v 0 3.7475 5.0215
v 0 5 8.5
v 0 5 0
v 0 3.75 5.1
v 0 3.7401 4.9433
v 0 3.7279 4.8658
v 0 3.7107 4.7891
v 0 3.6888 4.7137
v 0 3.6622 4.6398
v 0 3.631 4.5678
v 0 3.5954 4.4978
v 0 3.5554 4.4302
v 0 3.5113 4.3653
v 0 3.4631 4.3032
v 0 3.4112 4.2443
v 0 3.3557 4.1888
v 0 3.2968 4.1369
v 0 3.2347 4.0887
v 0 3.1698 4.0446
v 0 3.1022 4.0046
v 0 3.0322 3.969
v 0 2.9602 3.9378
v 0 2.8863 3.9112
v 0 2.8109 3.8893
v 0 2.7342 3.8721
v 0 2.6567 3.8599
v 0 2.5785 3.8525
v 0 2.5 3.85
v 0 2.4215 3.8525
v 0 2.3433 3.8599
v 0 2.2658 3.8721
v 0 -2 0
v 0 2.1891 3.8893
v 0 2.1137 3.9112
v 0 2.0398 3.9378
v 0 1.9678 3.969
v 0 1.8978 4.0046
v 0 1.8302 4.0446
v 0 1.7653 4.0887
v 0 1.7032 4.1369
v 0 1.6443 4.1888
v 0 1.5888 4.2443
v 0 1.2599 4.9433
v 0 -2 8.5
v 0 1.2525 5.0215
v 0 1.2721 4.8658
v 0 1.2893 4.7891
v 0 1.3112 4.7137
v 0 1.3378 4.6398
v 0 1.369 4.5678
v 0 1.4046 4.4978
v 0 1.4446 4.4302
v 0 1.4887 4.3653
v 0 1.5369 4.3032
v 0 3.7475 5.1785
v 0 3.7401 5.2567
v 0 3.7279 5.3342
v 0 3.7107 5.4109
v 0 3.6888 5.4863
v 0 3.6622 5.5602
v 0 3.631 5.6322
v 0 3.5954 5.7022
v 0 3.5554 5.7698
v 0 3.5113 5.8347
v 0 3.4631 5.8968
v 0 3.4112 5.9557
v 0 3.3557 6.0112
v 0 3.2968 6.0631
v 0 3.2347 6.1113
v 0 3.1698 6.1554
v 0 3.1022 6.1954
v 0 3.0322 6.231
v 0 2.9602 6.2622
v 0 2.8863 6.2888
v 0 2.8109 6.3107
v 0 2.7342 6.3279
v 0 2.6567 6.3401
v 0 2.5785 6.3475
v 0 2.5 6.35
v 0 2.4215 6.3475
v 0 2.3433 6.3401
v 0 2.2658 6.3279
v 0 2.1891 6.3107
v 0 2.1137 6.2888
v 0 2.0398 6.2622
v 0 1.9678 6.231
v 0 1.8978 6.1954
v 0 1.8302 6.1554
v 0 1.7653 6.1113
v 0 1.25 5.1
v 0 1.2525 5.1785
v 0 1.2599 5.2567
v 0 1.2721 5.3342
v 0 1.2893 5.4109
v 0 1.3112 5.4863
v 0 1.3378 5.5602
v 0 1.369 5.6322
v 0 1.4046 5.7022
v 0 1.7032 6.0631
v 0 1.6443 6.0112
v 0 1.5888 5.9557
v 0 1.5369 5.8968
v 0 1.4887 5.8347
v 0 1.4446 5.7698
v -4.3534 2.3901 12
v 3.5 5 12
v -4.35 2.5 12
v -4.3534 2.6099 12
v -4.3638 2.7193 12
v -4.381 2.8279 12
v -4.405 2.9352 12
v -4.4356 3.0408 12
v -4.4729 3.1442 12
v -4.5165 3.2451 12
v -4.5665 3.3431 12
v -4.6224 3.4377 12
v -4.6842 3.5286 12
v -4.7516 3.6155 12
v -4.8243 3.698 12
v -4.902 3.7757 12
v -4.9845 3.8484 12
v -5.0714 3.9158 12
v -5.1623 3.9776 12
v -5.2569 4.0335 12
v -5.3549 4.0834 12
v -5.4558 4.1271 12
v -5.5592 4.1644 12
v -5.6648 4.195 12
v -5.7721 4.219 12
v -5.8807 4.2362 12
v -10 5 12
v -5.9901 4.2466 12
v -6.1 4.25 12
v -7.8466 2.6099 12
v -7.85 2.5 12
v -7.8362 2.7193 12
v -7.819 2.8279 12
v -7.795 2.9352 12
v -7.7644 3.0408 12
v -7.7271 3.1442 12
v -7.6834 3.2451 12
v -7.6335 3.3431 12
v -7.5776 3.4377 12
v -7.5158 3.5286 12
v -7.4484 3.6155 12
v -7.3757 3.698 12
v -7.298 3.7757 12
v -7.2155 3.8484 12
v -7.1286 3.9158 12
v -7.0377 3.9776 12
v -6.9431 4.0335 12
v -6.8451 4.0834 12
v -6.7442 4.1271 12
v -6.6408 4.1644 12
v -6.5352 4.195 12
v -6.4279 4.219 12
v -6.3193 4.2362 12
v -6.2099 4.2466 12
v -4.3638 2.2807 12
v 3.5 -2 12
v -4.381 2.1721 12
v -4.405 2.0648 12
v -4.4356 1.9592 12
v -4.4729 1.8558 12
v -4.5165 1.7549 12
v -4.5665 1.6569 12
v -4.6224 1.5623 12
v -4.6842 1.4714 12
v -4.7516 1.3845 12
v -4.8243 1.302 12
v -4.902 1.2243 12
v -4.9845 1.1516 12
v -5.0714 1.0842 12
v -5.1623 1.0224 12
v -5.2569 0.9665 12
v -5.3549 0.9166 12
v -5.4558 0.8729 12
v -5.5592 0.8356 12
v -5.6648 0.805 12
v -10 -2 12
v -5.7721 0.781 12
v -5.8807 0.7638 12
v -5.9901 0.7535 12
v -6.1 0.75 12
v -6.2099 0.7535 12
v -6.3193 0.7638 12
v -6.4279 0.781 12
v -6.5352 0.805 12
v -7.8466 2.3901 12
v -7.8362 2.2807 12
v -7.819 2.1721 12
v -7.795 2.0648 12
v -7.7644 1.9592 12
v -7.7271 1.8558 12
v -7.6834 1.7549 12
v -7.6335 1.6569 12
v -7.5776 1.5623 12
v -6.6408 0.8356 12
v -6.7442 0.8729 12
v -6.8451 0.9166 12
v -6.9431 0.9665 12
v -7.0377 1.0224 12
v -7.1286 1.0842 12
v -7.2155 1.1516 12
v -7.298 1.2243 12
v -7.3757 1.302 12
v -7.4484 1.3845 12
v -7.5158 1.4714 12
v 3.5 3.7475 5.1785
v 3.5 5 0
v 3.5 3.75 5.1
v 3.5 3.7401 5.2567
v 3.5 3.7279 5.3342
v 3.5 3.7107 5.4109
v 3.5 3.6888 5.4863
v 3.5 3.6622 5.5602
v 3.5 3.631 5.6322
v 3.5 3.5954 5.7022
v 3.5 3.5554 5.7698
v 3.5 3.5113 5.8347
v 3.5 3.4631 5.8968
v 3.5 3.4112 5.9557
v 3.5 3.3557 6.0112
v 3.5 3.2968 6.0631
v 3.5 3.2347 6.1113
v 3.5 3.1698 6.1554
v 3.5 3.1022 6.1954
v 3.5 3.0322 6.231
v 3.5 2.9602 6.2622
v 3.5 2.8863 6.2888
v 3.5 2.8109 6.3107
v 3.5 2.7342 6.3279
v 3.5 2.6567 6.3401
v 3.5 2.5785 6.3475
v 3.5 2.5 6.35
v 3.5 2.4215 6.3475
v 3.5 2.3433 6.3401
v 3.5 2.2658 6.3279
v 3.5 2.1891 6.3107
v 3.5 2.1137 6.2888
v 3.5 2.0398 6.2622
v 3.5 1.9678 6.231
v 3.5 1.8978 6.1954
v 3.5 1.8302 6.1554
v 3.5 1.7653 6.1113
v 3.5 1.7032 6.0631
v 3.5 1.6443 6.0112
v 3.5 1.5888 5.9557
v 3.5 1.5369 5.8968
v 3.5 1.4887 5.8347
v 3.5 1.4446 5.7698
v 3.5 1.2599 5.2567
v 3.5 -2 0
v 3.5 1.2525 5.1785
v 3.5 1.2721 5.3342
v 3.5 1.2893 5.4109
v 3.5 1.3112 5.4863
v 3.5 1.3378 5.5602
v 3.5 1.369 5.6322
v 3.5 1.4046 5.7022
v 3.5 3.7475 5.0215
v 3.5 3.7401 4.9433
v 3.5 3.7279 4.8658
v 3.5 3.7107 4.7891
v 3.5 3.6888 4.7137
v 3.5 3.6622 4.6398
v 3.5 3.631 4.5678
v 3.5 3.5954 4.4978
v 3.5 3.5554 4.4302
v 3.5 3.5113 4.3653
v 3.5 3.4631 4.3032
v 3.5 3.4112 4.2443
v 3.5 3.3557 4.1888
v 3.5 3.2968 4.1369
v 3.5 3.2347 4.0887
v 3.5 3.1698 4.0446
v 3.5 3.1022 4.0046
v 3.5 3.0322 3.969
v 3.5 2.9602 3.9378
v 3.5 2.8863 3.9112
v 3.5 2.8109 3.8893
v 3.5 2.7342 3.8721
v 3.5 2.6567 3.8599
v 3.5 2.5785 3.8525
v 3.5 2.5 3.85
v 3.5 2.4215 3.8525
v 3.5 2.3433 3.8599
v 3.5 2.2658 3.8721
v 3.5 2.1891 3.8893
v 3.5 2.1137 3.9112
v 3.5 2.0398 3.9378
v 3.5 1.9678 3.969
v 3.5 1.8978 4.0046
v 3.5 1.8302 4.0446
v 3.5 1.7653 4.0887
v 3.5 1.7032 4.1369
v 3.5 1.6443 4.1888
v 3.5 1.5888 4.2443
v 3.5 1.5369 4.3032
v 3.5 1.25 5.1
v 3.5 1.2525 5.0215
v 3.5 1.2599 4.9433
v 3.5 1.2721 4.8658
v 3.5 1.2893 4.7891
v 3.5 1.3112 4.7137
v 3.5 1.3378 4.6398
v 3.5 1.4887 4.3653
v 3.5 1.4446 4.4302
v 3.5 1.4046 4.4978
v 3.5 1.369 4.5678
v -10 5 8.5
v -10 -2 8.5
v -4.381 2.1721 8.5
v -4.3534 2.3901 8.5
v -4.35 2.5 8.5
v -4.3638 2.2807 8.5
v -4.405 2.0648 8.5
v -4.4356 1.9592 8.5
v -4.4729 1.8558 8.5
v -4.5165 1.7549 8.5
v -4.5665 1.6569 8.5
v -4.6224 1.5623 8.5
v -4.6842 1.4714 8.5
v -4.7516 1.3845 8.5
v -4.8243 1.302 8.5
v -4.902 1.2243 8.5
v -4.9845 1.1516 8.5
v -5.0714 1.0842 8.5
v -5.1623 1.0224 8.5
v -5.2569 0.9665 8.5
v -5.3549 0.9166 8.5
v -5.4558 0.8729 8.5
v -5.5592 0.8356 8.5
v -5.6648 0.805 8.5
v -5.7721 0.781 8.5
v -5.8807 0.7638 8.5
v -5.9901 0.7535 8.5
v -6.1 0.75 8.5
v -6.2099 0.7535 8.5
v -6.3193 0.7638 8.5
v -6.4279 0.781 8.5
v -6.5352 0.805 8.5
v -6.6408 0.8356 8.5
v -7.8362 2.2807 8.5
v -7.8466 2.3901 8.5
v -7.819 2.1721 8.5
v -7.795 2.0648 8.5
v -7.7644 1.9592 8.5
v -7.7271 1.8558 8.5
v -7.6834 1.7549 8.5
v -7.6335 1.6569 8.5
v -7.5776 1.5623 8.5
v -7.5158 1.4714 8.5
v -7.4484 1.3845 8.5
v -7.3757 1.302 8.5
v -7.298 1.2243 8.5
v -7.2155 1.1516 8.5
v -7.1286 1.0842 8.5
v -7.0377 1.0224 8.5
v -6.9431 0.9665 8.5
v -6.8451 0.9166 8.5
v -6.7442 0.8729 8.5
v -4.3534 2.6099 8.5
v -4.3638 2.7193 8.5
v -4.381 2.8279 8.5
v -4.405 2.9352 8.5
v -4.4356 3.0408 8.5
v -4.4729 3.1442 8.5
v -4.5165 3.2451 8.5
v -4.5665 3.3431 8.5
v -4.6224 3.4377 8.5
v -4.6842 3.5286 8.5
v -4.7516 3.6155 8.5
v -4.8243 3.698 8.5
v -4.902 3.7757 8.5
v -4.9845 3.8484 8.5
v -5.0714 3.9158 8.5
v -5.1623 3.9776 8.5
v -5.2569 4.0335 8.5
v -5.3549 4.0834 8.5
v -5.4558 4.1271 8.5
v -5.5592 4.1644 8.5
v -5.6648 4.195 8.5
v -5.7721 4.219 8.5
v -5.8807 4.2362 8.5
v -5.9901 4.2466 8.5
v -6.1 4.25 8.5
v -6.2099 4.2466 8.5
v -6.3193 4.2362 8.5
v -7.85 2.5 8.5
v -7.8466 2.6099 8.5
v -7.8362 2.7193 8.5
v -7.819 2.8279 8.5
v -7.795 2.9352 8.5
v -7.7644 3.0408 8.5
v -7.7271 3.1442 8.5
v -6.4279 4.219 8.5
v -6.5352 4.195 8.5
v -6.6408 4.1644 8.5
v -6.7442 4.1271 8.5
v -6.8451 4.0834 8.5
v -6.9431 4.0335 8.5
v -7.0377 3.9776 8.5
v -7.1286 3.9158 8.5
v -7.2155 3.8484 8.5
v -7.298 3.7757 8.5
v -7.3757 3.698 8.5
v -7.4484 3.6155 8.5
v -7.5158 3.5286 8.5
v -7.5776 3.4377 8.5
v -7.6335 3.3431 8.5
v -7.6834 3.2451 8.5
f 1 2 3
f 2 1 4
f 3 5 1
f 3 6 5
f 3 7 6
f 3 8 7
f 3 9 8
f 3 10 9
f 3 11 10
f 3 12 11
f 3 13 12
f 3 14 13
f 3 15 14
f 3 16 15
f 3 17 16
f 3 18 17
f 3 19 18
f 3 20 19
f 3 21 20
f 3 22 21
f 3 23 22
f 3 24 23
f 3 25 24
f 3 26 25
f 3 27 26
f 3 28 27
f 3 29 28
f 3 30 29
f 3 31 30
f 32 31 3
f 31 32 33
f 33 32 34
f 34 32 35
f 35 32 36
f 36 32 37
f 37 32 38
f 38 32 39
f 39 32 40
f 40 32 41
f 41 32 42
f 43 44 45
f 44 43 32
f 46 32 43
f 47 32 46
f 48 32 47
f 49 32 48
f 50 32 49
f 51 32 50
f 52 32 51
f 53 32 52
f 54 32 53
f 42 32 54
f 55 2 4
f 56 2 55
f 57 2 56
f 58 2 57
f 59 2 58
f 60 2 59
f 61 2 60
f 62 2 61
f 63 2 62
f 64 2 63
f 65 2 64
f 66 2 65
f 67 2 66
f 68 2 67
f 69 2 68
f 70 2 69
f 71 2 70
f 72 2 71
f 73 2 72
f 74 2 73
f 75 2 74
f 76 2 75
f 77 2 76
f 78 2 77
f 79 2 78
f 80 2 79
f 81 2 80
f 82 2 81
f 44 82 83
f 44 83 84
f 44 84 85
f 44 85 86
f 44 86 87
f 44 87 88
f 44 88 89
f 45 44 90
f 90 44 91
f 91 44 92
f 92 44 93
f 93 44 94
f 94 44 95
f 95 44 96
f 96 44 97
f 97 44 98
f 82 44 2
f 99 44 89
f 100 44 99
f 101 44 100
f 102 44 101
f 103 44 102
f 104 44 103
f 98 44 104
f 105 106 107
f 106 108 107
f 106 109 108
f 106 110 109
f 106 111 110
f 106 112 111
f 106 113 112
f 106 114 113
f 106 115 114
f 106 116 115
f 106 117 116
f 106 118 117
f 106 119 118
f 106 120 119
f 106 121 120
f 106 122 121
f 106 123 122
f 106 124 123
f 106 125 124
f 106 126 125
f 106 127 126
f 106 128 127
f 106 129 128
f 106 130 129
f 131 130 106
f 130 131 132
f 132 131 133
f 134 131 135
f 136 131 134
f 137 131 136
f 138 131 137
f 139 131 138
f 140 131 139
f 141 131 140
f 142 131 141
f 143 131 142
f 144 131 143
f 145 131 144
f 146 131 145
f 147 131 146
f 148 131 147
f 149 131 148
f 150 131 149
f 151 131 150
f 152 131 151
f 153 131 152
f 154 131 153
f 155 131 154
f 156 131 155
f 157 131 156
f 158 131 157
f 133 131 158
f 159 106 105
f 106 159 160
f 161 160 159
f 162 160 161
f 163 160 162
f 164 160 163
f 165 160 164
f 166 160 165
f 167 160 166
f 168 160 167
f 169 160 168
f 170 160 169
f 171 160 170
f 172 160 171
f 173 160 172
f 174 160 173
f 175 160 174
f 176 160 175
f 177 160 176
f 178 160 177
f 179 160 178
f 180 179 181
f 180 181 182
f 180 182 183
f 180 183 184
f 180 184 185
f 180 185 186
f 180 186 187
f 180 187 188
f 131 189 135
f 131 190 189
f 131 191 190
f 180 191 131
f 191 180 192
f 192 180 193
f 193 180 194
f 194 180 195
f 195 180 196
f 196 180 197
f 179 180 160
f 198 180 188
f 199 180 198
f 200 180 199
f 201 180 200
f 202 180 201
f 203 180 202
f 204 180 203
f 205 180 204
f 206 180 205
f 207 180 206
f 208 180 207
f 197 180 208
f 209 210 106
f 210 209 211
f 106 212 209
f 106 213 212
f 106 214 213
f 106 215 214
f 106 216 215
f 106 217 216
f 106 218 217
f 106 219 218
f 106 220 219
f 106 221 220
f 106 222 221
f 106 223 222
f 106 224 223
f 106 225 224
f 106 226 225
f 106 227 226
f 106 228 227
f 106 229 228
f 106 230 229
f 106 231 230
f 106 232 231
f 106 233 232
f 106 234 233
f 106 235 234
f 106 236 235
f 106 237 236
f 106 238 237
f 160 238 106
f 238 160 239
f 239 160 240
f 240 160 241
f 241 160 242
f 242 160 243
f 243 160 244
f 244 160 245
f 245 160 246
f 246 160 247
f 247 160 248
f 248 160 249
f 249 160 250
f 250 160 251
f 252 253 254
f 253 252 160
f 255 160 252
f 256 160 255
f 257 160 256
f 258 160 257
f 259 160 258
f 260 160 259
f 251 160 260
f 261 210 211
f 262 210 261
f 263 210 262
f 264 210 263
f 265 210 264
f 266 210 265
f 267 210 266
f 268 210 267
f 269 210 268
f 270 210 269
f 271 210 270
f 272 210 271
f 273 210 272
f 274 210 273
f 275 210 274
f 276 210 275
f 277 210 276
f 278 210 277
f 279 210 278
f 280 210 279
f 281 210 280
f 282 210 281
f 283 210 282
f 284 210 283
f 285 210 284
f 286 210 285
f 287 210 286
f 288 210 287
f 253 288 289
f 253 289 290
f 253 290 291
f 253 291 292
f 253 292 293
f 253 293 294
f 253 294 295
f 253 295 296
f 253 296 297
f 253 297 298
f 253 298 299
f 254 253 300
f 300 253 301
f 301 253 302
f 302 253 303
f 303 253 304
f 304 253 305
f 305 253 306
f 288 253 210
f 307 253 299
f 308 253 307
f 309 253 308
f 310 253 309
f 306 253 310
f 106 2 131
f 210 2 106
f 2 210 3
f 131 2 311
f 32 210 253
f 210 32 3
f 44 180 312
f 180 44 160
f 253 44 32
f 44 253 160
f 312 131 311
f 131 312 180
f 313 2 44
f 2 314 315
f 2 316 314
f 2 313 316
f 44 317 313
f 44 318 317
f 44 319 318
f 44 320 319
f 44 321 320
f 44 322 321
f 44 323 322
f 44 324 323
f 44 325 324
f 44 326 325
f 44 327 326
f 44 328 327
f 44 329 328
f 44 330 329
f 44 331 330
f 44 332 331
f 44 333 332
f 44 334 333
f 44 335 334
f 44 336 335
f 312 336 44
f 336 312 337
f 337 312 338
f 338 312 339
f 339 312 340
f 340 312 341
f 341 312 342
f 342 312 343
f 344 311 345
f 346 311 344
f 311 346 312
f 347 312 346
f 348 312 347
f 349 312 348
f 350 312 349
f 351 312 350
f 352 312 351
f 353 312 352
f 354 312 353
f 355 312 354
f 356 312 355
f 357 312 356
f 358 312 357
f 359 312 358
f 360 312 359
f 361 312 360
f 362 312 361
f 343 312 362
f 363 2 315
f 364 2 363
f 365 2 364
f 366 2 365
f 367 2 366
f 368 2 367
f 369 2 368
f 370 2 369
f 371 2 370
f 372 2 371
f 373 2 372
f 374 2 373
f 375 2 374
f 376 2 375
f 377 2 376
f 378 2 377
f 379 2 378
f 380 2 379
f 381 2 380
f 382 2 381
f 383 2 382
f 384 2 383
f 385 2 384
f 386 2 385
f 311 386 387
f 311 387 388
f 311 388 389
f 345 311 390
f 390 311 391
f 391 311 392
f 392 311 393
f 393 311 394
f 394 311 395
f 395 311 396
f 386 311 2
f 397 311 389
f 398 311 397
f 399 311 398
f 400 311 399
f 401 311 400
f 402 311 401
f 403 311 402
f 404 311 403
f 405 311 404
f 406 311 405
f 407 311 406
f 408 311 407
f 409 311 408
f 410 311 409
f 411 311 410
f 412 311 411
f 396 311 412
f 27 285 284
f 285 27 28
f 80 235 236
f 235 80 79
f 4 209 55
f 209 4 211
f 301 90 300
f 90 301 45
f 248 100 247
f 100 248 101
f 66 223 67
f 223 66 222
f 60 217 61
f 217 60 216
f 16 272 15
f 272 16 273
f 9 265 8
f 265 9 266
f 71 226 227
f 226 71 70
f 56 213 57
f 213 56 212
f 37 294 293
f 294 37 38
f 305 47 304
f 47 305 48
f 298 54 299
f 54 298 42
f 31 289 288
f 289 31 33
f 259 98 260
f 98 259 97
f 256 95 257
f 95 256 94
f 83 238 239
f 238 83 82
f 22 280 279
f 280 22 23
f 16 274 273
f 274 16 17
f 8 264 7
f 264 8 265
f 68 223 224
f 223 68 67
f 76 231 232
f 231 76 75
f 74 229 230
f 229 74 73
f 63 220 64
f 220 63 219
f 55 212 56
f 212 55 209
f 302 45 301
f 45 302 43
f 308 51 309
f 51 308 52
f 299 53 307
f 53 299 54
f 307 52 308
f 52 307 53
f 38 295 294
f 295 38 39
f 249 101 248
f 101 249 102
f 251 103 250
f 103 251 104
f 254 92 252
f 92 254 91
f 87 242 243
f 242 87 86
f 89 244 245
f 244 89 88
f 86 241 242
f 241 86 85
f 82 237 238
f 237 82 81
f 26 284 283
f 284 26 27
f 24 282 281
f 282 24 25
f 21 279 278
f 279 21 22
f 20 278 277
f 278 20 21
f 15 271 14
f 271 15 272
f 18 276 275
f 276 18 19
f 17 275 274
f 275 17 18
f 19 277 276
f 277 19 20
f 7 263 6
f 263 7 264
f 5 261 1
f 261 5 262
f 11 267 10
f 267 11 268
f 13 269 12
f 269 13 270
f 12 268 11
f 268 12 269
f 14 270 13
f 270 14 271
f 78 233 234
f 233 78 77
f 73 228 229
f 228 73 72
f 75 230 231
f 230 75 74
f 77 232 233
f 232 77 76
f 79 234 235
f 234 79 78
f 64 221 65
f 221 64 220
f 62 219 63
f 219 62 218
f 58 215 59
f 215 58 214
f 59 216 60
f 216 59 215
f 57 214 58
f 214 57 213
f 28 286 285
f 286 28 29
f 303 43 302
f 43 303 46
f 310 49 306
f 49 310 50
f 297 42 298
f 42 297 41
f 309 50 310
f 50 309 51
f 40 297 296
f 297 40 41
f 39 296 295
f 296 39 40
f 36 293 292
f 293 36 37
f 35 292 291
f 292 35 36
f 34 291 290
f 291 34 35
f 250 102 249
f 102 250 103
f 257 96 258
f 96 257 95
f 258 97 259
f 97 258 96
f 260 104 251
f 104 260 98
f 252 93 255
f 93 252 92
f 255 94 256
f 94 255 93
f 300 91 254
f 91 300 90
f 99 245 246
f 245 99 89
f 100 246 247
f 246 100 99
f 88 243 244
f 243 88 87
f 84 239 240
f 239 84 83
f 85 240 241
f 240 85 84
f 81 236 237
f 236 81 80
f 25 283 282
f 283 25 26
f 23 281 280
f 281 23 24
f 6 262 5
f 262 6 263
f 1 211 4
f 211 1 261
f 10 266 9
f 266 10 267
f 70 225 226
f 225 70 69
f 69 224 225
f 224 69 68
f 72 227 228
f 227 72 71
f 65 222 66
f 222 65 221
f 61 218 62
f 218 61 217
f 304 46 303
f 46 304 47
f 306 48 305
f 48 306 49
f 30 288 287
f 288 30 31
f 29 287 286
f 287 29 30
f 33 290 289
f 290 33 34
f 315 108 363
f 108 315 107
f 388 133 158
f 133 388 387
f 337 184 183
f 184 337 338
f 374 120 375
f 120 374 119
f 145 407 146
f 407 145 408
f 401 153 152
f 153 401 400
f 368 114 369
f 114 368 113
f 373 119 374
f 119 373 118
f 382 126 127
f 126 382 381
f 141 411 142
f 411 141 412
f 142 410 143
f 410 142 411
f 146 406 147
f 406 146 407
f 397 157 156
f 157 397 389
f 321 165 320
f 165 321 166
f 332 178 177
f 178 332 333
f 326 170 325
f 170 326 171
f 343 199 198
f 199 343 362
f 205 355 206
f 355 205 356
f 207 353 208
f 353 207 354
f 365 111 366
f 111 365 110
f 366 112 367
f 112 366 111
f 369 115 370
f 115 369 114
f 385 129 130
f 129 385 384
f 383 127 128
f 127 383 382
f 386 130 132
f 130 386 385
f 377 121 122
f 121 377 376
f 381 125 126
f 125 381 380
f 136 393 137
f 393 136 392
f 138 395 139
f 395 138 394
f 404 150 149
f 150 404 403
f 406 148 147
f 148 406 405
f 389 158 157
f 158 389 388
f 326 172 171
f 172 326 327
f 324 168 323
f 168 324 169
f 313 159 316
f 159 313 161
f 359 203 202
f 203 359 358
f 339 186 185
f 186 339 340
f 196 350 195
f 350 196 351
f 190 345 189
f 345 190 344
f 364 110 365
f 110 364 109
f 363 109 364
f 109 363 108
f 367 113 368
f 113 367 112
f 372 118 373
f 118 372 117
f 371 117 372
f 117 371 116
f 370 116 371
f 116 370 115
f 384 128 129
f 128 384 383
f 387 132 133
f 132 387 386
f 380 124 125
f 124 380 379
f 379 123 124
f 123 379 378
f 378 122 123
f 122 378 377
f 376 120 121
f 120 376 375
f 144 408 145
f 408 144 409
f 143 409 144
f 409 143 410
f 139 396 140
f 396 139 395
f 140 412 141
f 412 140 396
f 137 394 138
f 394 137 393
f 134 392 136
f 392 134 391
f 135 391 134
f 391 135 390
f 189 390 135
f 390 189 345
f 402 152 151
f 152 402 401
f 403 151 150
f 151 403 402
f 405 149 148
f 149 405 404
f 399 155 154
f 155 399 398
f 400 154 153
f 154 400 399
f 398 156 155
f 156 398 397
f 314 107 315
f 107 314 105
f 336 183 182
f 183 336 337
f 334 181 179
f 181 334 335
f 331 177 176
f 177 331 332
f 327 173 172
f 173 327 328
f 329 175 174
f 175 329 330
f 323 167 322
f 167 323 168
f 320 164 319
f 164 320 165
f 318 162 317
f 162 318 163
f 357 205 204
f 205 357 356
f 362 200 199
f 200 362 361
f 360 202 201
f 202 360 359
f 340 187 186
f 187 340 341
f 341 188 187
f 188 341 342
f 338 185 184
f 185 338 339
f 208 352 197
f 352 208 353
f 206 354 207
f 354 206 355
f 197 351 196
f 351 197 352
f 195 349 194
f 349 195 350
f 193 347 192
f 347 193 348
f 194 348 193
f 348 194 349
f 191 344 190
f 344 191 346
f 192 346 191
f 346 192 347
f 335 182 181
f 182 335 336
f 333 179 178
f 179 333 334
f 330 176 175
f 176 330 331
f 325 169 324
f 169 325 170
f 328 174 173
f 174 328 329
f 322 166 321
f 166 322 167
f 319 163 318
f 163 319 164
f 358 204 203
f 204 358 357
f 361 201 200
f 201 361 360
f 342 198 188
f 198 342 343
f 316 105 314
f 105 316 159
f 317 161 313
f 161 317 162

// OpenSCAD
/*
    Sachisti - Stopar 2.GEN - SG90 servo holder
    ©TechniX_SK & Sachisti 2019
*/

difference() {
    left_holder();
    holes();
}


module left_holder() {
    translate([0, -2, 0])
        cube([3.5, 7, 12]);
    translate([-10, -2, 8.5])
        cube([12, 7, 3.5]);
}

module holes() { 
    rotate([0, 90, 0])
        translate([-5.1, 2.5, -0.1])
            cylinder(h=3.7, d=2.5, $fn=100);
    translate([-6.1, 2.5, 8.4])
            cylinder(h=3.7, d=3.5, $fn=100);
}
